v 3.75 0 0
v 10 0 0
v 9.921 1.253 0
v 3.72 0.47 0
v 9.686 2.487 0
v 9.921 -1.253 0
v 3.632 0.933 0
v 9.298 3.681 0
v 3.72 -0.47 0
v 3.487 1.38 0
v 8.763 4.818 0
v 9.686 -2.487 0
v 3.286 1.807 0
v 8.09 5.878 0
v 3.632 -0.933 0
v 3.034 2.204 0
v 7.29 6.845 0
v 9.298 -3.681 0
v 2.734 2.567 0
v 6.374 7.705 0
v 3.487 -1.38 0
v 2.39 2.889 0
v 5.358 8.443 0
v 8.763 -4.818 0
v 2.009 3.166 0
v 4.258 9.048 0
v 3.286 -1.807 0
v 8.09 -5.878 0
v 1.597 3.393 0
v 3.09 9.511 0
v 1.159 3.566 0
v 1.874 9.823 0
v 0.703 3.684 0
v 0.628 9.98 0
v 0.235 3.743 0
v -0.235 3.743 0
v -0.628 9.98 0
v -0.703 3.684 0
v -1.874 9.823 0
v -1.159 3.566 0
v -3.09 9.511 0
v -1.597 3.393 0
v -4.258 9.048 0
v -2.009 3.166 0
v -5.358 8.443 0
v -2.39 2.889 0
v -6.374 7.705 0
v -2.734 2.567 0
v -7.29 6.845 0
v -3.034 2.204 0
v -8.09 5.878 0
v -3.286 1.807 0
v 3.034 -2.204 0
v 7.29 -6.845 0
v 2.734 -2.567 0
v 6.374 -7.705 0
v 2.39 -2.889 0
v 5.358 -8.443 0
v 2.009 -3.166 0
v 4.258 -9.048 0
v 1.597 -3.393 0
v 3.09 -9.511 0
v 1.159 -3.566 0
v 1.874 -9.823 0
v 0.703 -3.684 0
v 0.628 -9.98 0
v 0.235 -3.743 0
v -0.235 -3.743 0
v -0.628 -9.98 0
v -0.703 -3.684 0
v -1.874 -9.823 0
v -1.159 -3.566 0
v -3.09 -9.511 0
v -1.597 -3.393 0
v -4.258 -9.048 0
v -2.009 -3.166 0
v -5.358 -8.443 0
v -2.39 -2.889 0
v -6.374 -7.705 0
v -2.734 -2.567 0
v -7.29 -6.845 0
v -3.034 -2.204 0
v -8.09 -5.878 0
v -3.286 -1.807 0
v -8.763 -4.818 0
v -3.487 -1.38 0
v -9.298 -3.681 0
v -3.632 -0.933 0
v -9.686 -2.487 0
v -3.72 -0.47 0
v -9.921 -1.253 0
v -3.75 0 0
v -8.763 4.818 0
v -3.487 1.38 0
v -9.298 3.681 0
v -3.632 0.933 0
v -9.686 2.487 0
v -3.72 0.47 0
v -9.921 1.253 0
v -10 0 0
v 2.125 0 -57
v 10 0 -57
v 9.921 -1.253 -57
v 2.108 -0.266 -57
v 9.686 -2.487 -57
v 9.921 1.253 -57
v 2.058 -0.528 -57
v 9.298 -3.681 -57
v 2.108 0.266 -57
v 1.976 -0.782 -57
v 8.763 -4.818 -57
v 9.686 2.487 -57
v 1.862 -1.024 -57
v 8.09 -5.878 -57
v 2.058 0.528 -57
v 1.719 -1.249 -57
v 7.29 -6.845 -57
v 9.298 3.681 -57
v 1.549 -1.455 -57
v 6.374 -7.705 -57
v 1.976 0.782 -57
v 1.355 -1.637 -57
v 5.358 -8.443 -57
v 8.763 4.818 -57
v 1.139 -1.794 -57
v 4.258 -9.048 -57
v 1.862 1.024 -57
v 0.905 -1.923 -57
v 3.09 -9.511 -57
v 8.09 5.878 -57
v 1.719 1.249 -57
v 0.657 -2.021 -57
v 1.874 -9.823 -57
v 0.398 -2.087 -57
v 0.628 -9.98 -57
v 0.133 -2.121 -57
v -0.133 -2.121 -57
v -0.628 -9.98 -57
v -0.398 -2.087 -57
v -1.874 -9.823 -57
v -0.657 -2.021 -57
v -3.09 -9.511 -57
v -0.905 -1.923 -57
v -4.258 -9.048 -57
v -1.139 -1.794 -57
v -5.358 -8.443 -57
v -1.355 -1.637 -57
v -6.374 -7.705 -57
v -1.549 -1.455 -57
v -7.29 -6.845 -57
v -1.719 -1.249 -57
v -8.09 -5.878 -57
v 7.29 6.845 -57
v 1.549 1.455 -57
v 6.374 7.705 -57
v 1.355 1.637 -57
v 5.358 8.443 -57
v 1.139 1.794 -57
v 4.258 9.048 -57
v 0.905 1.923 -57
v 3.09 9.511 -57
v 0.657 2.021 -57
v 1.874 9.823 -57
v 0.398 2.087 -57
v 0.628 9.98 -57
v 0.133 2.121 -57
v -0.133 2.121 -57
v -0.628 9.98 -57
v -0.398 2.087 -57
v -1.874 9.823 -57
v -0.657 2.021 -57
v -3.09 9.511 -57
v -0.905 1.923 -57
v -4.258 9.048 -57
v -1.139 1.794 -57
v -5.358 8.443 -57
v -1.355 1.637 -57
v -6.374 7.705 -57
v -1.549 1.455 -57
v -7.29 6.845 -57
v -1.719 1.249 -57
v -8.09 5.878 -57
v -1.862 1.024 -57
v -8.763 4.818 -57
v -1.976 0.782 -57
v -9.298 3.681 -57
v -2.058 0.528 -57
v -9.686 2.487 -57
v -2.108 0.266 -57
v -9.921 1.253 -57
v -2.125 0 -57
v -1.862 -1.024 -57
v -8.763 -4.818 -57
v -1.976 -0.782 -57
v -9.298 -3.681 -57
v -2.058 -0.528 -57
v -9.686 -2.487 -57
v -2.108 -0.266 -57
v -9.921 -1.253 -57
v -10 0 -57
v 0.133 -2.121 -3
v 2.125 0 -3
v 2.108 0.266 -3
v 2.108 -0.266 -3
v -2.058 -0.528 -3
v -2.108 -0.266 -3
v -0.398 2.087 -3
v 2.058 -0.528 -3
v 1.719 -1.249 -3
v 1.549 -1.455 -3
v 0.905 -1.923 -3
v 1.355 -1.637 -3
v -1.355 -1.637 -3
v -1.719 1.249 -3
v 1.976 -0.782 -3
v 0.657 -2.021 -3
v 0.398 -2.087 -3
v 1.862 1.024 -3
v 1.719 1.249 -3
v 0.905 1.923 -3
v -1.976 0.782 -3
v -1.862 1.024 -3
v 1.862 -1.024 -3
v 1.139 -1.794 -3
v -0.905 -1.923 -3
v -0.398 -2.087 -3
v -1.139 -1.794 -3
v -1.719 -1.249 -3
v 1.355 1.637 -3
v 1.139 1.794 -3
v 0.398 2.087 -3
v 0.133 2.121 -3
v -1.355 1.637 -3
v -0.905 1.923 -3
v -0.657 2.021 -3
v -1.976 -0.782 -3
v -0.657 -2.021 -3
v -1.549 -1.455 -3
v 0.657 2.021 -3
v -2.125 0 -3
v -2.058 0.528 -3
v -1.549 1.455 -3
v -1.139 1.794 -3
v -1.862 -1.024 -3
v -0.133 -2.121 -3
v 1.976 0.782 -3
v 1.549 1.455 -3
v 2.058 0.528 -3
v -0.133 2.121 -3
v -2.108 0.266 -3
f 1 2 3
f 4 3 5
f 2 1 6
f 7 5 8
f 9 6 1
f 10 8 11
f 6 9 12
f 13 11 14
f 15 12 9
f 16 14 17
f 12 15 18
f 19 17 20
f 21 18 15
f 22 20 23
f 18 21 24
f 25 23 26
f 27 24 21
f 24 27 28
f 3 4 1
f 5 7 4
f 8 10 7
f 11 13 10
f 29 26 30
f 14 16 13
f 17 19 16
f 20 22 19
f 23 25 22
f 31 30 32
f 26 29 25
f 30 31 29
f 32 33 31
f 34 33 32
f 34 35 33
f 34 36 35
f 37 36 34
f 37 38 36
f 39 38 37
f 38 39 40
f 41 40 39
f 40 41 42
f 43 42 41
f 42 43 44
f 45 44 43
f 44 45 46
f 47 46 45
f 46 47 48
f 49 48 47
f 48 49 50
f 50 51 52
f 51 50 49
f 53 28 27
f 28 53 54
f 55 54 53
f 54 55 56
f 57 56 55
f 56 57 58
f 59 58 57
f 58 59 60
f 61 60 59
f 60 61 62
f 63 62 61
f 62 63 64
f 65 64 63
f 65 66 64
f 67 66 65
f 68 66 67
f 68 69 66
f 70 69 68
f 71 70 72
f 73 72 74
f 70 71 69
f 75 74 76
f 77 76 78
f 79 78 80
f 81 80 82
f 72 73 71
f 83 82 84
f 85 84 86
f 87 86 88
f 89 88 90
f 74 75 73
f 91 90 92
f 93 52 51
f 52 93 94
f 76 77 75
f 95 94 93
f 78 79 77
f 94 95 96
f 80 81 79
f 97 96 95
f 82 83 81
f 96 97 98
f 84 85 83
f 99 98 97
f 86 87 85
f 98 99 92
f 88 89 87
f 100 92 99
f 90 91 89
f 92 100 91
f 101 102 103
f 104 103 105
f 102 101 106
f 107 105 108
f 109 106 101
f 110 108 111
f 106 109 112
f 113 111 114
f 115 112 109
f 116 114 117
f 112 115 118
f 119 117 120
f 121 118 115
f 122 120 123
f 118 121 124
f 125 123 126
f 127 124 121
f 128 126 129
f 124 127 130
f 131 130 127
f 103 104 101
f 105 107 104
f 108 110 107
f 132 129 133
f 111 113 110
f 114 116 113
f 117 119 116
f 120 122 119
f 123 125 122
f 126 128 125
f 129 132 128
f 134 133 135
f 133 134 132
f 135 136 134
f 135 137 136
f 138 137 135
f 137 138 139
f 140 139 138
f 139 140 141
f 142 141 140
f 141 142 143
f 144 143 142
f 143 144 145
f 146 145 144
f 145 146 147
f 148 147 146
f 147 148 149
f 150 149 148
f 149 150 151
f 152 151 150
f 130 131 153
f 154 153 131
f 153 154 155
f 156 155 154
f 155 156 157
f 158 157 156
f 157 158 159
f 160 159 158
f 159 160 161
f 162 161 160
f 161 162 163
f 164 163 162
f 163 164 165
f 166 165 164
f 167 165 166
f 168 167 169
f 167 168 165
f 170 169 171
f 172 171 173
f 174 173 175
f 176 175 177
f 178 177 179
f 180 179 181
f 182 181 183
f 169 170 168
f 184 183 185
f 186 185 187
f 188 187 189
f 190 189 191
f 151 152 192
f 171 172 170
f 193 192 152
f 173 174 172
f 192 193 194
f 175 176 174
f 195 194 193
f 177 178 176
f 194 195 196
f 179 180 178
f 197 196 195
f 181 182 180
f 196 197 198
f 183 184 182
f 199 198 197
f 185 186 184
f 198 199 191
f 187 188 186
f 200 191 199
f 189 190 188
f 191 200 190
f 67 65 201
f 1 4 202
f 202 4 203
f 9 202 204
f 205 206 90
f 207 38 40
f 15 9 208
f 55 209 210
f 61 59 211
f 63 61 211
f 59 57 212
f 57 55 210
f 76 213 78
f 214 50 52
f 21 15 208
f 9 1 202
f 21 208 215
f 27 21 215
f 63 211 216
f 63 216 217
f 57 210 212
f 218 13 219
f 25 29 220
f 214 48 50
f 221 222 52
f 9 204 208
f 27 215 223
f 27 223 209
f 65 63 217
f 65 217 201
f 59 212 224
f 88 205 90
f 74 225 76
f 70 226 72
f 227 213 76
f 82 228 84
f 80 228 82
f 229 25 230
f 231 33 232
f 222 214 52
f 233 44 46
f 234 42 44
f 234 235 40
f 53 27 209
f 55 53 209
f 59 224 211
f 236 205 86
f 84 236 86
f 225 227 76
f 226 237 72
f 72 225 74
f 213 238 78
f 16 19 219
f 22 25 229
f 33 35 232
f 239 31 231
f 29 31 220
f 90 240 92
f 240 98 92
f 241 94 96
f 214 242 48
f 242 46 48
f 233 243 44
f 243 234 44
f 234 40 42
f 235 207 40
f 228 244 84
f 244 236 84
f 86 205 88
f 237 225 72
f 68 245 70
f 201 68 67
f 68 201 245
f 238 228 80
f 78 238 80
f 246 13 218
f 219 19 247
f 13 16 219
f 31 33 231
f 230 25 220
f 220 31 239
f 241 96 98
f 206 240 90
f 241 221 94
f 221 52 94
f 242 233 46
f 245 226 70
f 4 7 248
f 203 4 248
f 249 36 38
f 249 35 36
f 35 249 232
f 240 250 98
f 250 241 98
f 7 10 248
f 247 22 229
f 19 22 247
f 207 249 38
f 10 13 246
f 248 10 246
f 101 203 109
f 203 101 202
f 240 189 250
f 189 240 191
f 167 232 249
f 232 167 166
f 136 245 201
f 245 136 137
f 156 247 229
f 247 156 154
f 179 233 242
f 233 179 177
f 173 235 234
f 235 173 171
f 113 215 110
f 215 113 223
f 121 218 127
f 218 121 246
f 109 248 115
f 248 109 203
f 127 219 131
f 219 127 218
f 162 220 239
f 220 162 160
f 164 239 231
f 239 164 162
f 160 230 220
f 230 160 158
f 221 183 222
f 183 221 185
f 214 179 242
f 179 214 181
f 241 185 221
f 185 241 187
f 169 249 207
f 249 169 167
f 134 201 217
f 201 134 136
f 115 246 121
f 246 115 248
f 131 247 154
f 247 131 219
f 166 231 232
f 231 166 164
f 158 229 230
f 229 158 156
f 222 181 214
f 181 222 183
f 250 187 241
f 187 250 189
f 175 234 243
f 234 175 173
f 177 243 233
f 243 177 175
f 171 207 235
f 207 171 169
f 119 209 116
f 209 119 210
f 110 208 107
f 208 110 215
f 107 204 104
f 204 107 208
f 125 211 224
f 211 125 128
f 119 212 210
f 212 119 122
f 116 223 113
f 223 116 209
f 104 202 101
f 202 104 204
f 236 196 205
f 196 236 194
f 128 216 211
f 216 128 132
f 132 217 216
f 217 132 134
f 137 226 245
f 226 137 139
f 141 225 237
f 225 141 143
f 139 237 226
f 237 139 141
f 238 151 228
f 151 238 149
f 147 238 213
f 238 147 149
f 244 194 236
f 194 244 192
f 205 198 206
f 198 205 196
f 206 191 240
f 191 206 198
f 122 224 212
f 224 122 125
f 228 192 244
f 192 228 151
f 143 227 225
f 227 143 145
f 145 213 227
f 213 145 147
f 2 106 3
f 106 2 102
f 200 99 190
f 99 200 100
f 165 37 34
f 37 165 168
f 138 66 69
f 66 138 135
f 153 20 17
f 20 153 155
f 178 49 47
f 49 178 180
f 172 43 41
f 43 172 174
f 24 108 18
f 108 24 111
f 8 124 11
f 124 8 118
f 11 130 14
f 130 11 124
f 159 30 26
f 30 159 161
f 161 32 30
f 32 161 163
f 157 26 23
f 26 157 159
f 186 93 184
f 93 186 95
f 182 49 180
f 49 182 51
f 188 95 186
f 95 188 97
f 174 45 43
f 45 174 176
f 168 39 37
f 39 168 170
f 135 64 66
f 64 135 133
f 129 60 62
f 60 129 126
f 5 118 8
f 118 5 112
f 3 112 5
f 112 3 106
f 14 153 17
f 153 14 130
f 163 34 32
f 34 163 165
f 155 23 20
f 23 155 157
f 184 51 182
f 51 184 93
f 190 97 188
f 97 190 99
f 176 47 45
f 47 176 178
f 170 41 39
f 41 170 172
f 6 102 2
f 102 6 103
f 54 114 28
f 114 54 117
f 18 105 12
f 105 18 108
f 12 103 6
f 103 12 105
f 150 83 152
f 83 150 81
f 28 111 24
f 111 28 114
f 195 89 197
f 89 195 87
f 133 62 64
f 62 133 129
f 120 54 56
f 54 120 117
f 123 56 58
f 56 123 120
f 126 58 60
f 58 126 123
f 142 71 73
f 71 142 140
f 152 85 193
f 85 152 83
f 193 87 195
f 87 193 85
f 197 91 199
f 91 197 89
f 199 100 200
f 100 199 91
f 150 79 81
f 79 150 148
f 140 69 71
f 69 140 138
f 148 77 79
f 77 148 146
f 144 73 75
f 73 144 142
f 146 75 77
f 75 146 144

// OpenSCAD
$fn = 50;


difference() {
	union() {
		translate(v = [0, 0, -57.0000000000]) {
			cylinder(h = 57, r = 10.0000000000);
		}
	}
	union() {
		translate(v = [0, 0, 0]) {
			rotate(a = [0, 0, 0]) {
				difference() {
					union() {
						#translate(v = [0, 0, -57.0000000000]) {
							cylinder(h = 57, r = 2.0000000000);
						}
						#translate(v = [0, 0, -3]) {
							cylinder(h = 3, r = 10.0000000000, r1 = 2.1250000000, r2 = 3.7500000000);
						}
						#translate(v = [0, 0, -57.0000000000]) {
							cylinder(h = 57, r = 2.1250000000);
						}
						#translate(v = [0, 0, -57.0000000000]) {
							cylinder(h = 57, r = 2.0000000000);
						}
					}
					union();
				}
			}
		}
	}
}
